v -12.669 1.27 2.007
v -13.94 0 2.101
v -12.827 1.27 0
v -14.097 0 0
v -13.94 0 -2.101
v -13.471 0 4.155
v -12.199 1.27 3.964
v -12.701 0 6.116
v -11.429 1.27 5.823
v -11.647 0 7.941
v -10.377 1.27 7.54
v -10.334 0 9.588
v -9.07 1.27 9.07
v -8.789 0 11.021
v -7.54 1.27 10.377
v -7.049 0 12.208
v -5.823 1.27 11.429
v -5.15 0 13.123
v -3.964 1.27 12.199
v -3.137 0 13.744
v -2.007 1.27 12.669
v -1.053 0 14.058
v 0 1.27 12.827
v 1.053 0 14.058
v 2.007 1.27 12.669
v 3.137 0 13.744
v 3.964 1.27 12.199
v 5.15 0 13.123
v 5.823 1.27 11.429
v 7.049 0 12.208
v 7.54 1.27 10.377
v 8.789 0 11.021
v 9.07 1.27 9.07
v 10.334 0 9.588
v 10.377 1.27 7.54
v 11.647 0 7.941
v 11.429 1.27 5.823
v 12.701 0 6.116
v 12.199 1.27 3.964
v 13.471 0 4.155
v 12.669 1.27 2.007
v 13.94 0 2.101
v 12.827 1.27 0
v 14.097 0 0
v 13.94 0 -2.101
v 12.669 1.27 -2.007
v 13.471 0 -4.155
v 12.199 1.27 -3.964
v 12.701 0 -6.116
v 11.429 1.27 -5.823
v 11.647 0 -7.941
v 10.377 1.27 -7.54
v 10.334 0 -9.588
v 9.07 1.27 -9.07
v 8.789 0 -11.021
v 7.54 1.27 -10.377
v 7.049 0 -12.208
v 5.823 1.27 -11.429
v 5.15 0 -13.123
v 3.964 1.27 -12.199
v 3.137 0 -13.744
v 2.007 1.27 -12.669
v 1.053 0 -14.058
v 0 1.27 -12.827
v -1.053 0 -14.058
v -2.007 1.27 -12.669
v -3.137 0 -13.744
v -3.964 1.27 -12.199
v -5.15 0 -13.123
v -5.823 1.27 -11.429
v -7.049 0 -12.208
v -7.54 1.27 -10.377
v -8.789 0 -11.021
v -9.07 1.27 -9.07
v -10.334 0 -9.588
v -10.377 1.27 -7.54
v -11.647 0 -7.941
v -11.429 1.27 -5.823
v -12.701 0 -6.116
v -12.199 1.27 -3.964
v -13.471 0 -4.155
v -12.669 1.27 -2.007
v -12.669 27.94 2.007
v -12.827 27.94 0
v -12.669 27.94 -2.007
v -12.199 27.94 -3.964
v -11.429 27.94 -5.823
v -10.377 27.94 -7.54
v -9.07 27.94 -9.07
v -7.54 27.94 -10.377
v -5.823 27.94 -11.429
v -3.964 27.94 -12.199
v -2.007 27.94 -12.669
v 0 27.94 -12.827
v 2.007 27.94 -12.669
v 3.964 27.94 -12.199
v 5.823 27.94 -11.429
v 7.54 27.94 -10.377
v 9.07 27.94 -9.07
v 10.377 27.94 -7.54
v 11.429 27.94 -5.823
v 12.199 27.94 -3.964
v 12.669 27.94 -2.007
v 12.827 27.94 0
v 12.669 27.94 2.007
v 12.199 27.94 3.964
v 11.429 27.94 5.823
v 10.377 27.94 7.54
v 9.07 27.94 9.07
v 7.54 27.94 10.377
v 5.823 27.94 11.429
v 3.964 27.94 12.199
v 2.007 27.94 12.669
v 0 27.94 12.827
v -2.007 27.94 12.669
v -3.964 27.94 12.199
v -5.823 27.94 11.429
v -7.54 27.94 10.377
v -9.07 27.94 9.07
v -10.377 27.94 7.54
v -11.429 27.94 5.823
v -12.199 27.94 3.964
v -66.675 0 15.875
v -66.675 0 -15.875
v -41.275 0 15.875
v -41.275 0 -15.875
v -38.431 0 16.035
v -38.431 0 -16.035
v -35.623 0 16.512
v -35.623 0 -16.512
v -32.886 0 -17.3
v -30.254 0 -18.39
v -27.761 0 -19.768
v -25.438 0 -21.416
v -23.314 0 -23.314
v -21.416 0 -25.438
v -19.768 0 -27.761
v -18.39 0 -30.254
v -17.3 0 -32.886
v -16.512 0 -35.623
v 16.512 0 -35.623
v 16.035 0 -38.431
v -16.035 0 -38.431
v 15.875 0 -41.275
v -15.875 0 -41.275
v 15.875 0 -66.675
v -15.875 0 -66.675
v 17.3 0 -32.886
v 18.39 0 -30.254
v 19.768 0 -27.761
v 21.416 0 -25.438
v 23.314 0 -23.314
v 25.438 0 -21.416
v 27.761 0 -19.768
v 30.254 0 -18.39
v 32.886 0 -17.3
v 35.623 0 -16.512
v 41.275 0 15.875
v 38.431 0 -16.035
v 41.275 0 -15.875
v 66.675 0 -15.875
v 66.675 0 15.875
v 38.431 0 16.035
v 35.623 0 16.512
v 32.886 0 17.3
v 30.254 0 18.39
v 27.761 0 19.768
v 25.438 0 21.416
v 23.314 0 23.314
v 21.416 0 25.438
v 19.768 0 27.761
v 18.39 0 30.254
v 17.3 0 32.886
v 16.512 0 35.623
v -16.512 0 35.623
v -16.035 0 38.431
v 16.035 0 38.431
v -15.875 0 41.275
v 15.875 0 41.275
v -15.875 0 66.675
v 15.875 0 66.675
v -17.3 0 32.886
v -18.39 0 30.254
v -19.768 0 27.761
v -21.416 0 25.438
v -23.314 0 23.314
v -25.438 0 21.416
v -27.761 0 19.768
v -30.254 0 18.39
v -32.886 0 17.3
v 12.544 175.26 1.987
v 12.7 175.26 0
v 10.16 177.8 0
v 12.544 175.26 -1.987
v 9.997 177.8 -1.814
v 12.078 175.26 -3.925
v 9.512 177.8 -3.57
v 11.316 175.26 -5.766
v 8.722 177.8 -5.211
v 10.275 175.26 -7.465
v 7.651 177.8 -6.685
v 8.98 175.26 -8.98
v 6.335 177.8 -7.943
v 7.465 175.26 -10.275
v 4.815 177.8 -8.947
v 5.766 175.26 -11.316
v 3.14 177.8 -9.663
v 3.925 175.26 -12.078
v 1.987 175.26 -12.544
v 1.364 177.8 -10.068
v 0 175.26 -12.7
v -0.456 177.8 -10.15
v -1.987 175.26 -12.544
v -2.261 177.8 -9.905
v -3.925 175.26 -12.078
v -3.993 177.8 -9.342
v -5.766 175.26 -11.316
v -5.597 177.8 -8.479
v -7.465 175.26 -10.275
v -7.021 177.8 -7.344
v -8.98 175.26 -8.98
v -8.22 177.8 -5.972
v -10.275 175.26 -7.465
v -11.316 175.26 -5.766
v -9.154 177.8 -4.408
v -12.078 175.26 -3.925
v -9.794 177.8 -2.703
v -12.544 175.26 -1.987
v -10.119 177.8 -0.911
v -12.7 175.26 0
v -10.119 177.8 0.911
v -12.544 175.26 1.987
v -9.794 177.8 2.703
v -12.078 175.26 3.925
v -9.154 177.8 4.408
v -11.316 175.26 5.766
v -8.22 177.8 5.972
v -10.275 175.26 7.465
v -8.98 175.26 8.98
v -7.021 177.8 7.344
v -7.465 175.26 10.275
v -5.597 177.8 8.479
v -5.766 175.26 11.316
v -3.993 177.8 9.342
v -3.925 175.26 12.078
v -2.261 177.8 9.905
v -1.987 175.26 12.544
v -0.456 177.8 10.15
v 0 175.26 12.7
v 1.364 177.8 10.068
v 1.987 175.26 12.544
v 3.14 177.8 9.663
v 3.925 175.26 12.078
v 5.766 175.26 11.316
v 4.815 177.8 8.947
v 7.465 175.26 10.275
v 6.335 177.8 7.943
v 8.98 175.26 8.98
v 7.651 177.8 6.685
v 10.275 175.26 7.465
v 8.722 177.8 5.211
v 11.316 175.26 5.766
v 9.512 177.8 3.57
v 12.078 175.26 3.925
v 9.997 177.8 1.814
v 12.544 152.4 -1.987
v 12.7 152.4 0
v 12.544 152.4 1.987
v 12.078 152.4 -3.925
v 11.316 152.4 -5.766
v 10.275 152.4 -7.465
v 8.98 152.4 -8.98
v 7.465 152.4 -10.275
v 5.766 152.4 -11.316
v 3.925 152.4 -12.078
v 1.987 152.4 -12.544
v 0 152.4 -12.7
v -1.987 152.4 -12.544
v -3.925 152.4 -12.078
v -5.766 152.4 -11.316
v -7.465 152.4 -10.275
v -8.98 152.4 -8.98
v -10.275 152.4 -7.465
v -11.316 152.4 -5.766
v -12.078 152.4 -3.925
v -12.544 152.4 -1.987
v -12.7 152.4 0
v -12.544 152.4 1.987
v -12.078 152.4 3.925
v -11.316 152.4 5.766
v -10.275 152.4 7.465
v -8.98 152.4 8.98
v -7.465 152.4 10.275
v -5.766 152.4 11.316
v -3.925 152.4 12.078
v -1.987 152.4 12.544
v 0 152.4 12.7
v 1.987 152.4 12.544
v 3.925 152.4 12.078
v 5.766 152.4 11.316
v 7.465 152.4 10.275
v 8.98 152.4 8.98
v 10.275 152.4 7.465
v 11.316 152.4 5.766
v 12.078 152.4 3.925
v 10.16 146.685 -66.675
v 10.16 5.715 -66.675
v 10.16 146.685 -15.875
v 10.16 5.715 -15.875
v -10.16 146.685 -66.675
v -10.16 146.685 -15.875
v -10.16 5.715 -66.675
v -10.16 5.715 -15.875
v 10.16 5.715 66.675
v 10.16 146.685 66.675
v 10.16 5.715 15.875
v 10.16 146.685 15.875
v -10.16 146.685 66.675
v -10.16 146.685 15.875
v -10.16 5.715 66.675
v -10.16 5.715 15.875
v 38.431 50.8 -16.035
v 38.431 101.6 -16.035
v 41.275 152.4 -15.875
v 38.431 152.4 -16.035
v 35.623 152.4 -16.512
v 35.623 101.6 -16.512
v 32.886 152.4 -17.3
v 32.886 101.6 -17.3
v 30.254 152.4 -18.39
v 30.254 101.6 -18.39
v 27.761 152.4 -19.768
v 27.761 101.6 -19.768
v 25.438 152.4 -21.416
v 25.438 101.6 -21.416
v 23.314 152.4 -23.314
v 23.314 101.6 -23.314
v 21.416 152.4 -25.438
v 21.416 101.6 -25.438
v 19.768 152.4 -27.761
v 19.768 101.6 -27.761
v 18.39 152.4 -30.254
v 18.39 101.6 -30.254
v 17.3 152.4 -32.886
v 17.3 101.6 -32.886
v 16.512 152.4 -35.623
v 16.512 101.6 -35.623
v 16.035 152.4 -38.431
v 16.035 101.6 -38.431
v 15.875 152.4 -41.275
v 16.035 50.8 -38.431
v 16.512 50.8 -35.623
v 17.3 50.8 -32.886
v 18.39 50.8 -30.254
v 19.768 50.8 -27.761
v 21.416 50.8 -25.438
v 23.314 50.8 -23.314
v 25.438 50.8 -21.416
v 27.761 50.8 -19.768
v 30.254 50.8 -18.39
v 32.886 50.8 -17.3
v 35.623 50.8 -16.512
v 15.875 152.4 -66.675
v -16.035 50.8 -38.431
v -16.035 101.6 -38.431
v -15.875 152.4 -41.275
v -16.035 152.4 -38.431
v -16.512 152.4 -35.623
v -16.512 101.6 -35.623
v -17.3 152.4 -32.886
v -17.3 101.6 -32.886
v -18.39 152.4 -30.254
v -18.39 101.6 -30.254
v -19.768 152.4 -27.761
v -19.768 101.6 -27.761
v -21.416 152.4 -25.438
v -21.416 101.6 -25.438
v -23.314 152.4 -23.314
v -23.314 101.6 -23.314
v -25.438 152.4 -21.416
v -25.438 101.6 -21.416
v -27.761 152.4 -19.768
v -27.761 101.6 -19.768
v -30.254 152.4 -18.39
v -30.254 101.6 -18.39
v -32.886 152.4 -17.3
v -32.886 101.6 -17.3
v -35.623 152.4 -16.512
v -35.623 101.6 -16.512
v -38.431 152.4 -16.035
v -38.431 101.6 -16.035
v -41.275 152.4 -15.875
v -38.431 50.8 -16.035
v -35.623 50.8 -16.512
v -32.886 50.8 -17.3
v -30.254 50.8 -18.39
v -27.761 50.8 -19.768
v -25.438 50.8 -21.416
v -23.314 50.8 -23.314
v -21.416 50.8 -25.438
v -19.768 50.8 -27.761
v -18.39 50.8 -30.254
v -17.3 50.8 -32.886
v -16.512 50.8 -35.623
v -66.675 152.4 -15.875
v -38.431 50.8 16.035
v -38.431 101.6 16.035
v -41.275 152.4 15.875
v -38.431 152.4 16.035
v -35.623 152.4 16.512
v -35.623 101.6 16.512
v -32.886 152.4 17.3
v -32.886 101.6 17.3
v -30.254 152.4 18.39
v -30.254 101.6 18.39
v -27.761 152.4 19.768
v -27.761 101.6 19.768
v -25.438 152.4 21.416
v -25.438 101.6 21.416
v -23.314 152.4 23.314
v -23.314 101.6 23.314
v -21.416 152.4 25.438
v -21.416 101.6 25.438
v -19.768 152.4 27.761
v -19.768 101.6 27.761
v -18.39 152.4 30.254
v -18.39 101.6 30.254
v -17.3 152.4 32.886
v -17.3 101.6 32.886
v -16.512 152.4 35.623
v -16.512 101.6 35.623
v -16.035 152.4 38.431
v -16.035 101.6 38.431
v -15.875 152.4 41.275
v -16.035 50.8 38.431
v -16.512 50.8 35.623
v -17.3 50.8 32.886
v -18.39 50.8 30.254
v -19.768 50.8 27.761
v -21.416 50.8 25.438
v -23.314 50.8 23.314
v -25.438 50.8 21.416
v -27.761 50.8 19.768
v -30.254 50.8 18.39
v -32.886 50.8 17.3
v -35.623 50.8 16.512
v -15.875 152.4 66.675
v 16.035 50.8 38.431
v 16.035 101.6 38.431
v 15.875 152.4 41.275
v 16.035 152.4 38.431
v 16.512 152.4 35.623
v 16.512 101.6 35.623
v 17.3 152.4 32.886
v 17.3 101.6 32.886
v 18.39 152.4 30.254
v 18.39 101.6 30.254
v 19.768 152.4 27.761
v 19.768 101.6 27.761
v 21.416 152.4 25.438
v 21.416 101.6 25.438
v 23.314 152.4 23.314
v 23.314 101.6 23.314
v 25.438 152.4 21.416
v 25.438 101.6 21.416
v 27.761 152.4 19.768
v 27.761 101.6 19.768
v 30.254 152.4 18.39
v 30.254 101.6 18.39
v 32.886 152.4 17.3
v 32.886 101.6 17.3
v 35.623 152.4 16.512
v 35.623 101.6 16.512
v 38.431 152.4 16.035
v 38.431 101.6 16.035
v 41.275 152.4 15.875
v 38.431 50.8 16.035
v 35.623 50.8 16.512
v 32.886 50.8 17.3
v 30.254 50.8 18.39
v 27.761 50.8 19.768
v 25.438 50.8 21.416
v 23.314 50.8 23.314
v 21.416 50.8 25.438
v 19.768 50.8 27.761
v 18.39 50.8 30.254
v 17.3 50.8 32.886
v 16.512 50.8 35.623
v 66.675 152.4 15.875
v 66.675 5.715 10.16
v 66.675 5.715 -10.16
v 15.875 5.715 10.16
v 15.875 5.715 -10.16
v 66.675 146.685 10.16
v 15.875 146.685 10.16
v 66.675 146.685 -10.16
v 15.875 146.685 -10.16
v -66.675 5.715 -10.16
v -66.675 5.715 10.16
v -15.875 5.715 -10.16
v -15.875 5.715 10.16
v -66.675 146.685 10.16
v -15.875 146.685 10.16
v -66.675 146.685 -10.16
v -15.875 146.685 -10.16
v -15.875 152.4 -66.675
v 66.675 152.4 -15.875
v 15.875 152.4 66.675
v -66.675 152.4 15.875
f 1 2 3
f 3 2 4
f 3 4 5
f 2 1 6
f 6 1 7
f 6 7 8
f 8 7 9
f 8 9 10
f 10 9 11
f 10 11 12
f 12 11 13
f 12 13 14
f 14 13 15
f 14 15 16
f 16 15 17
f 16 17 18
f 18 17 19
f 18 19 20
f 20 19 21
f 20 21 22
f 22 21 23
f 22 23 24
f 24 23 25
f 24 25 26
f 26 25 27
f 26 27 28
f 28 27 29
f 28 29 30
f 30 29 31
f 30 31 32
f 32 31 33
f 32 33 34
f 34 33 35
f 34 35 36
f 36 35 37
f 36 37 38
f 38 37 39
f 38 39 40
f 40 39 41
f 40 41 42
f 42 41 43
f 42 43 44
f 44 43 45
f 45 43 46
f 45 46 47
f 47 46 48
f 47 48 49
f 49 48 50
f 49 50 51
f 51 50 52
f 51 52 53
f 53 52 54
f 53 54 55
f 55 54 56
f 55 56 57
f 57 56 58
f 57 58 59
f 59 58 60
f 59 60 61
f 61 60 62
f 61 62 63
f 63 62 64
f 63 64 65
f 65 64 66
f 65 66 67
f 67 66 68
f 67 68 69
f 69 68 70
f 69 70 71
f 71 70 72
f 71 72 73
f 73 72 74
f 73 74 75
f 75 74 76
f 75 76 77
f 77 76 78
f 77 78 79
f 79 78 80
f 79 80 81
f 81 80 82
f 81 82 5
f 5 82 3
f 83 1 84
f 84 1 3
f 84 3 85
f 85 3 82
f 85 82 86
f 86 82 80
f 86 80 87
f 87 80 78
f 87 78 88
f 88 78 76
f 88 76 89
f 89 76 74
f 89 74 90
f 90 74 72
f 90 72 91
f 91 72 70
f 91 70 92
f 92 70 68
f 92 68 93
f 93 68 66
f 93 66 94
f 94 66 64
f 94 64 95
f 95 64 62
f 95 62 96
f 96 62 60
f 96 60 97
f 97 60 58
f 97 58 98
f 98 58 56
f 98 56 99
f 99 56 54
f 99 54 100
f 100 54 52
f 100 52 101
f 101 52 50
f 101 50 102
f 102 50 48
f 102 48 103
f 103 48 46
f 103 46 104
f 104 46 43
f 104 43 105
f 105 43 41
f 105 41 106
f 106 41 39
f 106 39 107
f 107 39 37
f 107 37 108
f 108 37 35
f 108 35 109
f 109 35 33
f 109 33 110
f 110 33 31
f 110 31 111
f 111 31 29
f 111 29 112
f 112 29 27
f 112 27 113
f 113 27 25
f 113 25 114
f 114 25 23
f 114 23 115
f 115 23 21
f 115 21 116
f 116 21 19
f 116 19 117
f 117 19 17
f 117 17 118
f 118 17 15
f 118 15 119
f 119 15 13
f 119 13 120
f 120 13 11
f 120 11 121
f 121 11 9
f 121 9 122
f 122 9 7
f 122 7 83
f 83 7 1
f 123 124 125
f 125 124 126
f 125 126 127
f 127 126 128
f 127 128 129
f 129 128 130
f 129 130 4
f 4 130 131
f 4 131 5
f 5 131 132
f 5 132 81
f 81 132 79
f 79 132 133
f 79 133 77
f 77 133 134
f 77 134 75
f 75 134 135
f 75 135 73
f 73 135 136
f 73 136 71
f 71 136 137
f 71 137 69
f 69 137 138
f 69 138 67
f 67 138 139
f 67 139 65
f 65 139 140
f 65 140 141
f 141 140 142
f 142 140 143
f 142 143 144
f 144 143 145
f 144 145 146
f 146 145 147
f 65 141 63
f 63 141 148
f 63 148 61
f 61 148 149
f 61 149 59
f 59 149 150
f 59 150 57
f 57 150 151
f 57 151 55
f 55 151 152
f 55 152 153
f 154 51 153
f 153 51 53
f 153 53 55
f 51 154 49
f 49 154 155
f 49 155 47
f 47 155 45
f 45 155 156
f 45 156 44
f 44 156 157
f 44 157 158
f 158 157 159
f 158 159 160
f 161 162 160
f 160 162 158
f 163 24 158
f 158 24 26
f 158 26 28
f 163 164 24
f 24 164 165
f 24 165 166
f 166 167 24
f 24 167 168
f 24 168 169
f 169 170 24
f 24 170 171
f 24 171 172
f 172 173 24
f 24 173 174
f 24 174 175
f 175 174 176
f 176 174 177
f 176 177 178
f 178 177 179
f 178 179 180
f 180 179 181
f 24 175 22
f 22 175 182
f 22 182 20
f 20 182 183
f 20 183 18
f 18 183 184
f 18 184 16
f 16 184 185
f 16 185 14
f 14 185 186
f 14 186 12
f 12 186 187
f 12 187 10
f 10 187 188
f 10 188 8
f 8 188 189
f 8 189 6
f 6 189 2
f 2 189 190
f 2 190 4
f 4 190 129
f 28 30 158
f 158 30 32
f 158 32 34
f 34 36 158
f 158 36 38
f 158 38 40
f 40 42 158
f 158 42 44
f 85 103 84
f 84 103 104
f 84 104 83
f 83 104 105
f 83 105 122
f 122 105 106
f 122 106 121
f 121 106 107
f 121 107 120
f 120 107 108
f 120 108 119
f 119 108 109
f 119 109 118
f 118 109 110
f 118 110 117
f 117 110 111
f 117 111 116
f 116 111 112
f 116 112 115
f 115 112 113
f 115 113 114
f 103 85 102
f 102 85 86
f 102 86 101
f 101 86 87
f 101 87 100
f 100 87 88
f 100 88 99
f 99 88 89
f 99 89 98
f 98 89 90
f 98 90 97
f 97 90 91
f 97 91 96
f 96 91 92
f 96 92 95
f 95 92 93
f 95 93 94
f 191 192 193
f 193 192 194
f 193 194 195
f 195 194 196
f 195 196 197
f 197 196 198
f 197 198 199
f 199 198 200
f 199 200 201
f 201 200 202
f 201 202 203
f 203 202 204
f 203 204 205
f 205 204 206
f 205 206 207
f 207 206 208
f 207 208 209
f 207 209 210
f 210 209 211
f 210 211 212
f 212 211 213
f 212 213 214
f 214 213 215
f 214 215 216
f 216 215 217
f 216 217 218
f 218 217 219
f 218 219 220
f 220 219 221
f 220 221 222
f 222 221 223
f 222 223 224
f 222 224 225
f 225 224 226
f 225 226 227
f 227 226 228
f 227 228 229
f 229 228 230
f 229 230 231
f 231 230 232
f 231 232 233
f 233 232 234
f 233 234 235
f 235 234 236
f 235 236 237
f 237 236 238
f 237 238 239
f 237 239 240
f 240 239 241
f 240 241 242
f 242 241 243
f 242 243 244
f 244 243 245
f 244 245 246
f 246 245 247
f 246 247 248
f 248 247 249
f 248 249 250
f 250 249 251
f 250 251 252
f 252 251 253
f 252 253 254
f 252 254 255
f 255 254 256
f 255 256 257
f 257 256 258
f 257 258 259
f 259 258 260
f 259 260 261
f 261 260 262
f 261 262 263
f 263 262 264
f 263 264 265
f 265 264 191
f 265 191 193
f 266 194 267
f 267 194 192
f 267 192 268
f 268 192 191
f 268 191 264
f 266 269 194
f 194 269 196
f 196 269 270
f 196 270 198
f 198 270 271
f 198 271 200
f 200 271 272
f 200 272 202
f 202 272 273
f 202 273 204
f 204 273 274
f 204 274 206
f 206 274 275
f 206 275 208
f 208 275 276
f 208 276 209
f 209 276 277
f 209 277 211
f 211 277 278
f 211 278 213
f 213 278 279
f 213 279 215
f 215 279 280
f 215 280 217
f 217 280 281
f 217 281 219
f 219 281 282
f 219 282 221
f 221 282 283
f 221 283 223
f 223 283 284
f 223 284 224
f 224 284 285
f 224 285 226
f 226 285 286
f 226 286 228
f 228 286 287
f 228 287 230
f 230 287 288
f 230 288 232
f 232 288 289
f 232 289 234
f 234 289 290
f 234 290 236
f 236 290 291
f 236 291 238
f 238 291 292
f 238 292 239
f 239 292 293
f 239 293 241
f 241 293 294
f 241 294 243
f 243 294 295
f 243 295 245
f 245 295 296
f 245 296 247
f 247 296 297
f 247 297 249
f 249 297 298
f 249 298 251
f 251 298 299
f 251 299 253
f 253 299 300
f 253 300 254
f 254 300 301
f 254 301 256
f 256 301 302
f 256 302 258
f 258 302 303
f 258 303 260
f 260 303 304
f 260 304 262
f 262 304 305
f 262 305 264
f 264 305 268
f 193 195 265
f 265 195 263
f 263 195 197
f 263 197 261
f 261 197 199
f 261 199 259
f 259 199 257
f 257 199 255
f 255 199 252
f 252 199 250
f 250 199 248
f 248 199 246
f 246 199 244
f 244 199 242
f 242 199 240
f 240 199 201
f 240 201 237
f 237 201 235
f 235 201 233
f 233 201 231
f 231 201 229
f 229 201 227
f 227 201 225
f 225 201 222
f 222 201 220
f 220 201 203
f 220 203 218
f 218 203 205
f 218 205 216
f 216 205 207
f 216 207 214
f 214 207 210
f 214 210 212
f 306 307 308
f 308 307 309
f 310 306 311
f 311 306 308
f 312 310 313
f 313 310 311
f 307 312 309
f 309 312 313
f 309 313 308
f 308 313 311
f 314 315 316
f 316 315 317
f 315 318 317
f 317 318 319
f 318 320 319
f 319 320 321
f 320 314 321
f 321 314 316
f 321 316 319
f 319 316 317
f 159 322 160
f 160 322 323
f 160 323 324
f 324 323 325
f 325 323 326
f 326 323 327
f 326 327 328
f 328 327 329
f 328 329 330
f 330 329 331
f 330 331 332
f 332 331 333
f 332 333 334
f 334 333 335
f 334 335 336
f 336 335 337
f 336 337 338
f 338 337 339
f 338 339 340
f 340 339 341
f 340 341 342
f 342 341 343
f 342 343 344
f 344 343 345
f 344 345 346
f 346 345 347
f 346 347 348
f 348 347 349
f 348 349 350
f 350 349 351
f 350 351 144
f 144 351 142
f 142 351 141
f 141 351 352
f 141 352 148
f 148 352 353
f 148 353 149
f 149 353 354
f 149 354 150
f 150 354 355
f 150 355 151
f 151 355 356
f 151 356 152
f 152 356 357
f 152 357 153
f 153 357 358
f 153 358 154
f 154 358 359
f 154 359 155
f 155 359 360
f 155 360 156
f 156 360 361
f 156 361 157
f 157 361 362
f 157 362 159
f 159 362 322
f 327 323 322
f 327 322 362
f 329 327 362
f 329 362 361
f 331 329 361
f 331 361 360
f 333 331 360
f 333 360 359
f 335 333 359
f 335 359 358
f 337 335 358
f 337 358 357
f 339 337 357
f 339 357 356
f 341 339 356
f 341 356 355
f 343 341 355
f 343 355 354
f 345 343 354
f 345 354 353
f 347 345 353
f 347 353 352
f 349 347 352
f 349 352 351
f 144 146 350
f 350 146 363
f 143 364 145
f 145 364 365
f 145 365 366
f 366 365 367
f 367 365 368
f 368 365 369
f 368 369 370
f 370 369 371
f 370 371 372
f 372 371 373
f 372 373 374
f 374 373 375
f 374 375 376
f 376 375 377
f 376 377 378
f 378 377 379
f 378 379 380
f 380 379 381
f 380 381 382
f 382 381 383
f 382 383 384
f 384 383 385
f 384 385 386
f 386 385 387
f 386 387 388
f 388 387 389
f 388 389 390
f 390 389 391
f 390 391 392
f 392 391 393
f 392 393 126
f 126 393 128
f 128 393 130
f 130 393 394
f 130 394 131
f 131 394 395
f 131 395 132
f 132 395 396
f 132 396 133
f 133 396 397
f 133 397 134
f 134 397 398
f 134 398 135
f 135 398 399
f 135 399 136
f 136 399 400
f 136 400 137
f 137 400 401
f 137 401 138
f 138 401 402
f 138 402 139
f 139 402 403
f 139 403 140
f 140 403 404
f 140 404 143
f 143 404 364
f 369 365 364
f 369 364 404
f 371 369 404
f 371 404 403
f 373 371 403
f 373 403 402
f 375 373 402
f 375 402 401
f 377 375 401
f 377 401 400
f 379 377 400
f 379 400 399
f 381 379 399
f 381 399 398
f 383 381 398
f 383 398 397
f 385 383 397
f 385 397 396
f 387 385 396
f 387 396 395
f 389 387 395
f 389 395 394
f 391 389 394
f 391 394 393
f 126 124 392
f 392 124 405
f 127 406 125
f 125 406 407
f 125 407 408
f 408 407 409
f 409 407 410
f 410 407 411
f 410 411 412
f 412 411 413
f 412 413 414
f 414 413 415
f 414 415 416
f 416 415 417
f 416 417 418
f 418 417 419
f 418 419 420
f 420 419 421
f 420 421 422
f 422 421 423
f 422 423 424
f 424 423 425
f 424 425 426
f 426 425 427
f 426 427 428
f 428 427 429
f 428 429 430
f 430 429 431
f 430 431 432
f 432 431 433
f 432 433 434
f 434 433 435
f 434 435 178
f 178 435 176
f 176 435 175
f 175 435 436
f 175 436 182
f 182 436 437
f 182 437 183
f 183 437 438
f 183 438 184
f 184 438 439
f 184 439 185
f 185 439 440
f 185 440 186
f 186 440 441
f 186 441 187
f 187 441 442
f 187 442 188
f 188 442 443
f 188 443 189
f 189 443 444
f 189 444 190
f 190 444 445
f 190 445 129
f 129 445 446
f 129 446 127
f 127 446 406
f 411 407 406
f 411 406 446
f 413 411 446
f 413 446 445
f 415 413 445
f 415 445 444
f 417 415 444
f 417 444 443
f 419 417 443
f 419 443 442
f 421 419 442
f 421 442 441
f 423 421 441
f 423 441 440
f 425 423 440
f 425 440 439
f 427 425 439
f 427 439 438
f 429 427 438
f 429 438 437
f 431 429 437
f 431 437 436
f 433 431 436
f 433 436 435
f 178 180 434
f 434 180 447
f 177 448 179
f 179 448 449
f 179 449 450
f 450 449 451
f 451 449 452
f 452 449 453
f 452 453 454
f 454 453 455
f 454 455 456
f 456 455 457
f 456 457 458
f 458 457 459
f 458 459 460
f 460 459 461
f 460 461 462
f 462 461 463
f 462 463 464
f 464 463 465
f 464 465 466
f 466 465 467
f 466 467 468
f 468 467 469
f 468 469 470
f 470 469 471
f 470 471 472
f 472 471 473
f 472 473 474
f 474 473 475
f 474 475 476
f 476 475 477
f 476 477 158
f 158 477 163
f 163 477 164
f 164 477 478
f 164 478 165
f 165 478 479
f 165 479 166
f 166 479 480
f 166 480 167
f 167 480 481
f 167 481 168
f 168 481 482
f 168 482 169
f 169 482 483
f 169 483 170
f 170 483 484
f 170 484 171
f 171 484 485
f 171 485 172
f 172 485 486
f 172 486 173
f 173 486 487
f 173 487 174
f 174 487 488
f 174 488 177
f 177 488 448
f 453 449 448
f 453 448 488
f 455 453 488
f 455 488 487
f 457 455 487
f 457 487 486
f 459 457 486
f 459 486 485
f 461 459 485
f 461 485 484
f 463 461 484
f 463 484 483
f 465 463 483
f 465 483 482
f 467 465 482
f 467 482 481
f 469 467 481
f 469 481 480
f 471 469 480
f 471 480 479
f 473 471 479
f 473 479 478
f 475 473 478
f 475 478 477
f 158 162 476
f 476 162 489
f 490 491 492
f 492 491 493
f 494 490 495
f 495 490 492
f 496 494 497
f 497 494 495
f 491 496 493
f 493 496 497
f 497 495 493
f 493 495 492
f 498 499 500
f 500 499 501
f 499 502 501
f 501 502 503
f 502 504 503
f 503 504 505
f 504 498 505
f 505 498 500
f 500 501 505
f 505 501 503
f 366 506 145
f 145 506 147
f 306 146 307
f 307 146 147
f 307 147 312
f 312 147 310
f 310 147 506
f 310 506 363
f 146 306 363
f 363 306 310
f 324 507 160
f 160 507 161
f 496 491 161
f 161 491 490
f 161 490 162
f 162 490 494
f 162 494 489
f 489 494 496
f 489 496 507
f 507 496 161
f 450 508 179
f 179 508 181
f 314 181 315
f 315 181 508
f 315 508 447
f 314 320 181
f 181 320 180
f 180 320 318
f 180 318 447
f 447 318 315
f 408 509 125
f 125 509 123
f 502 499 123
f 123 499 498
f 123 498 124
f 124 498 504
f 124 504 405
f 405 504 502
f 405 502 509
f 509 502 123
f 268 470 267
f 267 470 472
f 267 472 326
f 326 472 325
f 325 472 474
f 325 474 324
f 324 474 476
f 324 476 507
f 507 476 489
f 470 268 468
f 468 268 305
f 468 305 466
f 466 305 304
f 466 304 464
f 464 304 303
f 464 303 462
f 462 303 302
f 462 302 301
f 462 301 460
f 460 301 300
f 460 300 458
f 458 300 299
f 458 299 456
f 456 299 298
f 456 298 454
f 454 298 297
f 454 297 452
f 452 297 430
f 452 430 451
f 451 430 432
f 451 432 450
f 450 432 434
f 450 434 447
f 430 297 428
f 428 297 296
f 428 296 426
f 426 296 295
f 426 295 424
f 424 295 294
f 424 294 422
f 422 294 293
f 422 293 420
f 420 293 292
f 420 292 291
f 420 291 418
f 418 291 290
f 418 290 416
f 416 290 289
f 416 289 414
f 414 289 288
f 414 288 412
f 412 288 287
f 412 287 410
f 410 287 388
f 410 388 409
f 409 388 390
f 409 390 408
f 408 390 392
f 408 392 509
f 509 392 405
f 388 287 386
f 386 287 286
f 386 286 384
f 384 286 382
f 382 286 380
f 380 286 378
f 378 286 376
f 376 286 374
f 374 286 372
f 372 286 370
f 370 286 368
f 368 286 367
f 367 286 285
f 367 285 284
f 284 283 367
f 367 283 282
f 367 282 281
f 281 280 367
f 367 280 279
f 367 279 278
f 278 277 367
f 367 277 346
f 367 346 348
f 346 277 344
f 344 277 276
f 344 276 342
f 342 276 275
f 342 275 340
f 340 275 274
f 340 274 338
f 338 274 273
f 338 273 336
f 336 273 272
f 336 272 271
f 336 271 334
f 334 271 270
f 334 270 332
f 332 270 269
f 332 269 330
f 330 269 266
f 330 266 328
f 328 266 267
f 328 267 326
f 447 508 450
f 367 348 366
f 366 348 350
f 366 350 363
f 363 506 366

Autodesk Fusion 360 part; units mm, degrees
sketch "Sketch1" plane through (0, 0, 0) normal (0, 1, 0) x (1, 0, 0)
sketch "Sketch2" plane through (0, 0, 0) normal (0, 1, 0) x (1, 0, 0)
  line L0 (-39.0176, 15.875) -> (-15.875, 15.875)
  line L1 (-15.875, 15.875) -> (-15.875, 66.675)
  line L2 (-15.875, 66.675) -> (15.875, 66.675)
  line L3 (15.875, 66.675) -> (15.875, 15.875)
  line L4 (15.875, 15.875) -> (66.675, 15.875)
  line L5 (66.675, 15.875) -> (66.675, -15.875)
  line L6 (66.675, -15.875) -> (15.875, -15.875)
  line L7 (15.875, -15.875) -> (15.875, -66.675)
  line L8 (15.875, -66.675) -> (-15.875, -66.675)
  line L9 (-15.875, -66.675) -> (-15.875, -15.875)
  line L10 (-15.875, -15.875) -> (-66.675, -15.875)
  line L11 (-66.675, -15.875) -> (-66.675, 15.875)
  line L12 (-66.675, 15.875) -> (-39.0176, 15.875)
  line L13 (1.75, 0) -> (22.5, 0)
  line L14 (0, -1.75) -> (0, -22.5)
  dimension "d1" = 31.75
  dimension "d2" = 31.75
  dimension "d7" = 50.8
  dimension "d8" = 50.8
extrude "Extrude1" add sketch "Sketch2" along normal blind 152.4
sketch "Sketch3" plane through (-66.675, 0, 0) normal (-1, 0, 0) x (0, -1, 0)
  line L0 (0, -15.875) -> (0, 15.875)
  line L1 (0, 15.875) -> (-152.4, 15.875)
  line L2 (-152.4, 15.875) -> (-152.4, -15.875)
  line L3 (-152.4, -15.875) -> (0, -15.875)
  line L4 (-146.685, 10.16) -> (-5.715, 10.16)
  line L5 (-5.715, 10.16) -> (-5.715, -10.16)
  line L6 (-5.715, -10.16) -> (-146.685, -10.16)
  line L7 (-146.685, -10.16) -> (-146.685, 10.16)
  dimension "d11" = 140.97
  dimension "d12" = 20.32
  dimension "d13" = 5.715
  dimension "d14" = 5.715
extrude "Extrude2" cut sketch "Sketch3" against normal blind 50.8 contours L4 L5 L6 L7
mirror "Mirror1" about plane through (0, 0, 0) normal (1, 0, 0) of "Extrude2"
fillet "Fillet1" radius 25.4 1 edges at (15.875, 76.2, 15.875)
fillet "Fillet1" radius 25.4 3 edges at (-15.875, 76.2, 15.875) (-15.875, 76.2, -15.875) (15.875, 76.2, -15.875)
sketch "Sketch4" plane through (0, 0, 66.675) normal (0, 0, 1) x (-1, 0, 0)
  line L0 (15.875, 0) -> (-15.875, 0)
  line L1 (-15.875, 0) -> (-15.875, -152.4)
  line L2 (-15.875, -152.4) -> (15.875, -152.4)
  line L3 (15.875, -152.4) -> (15.875, 0)
  line L4 (10.16, -146.685) -> (-10.16, -146.685)
  line L5 (-10.16, -146.685) -> (-10.16, -5.715)
  line L6 (-10.16, -5.715) -> (10.16, -5.715)
  line L7 (10.16, -5.715) -> (10.16, -146.685)
  dimension "d24" = 5.715
  dimension "d25" = 5.715
  dimension "d26" = 5.715
  dimension "d27" = 5.715
extrude "Extrude3" cut sketch "Sketch4" against normal blind 50.8 contours L4 L5 L6 L7
mirror "Mirror2" about plane through (0, 0, 0) normal (0, 0, 1) of "Extrude3"
sketch "Sketch6" plane through (0, 152.4, 0) normal (0, 1, 0) x (-1, 0, 0)
  line L0 (66.675, -15.875) -> (66.675, 15.875)
  line L1 (66.675, 15.875) -> (41.275, 15.875)
  arc A0 (15.875, 41.275) -> (41.275, 15.875) centre (41.275, 41.275) ccw
  line L2 (15.875, 41.275) -> (15.875, 66.675)
  line L3 (15.875, 66.675) -> (-15.875, 66.675)
  line L4 (-15.875, 66.675) -> (-15.875, 41.275)
  arc A1 (-41.275, 15.875) -> (-15.875, 41.275) centre (-41.275, 41.275) ccw
  line L5 (-41.275, 15.875) -> (-66.675, 15.875)
  line L6 (-66.675, 15.875) -> (-66.675, -15.875)
  line L7 (-66.675, -15.875) -> (-41.275, -15.875)
  arc A2 (-15.875, -41.275) -> (-41.275, -15.875) centre (-41.275, -41.275) ccw
  line L8 (-15.875, -41.275) -> (-15.875, -66.675)
  line L9 (-15.875, -66.675) -> (15.875, -66.675)
  line L10 (15.875, -66.675) -> (15.875, -41.275)
  arc A3 (41.275, -15.875) -> (15.875, -41.275) centre (41.275, -41.275) ccw
  line L11 (41.275, -15.875) -> (66.675, -15.875)
  circle A4 centre (0, 0) radius 12.7
  dimension "d32" = 25.4
extrude "Extrude4" add sketch "Sketch6" along normal blind 25.4 contours A4
chamfer "Chamfer1" distance 2.54 angle 45 1 edges at (11.8406, 177.8, -4.5925)
sketch "Sketch7" plane through (0, 0, 0) normal (0, -1, 0) x (1, 0, 0)
  line L0 (-66.675, 15.875) -> (-66.675, -15.875)
  line L1 (-66.675, -15.875) -> (-41.275, -15.875)
  arc A0 (-15.875, -41.275) -> (-41.275, -15.875) centre (-41.275, -41.275) ccw
  line L2 (-15.875, -41.275) -> (-15.875, -66.675)
  line L3 (-15.875, -66.675) -> (15.875, -66.675)
  line L4 (15.875, -66.675) -> (15.875, -41.275)
  arc A1 (41.275, -15.875) -> (15.875, -41.275) centre (41.275, -41.275) ccw
  line L5 (41.275, -15.875) -> (66.675, -15.875)
  line L6 (66.675, -15.875) -> (66.675, 15.875)
  line L7 (66.675, 15.875) -> (41.275, 15.875)
  arc A2 (15.875, 41.275) -> (41.275, 15.875) centre (41.275, 41.275) ccw
  line L8 (15.875, 41.275) -> (15.875, 66.675)
  line L9 (15.875, 66.675) -> (-15.875, 66.675)
  line L10 (-15.875, 66.675) -> (-15.875, 41.275)
  arc A3 (-41.275, 15.875) -> (-15.875, 41.275) centre (-41.275, 41.275) ccw
  line L11 (-41.275, 15.875) -> (-66.675, 15.875)
  circle A4 centre (0, 0) radius 12.827
  dimension "d36" = 25.654
extrude "Extrude5" cut sketch "Sketch7" against normal blind 27.94 contours A4
chamfer "Chamfer2" distance 1.27 angle 45 1 edges at (-11.959, 0, 4.6384)
